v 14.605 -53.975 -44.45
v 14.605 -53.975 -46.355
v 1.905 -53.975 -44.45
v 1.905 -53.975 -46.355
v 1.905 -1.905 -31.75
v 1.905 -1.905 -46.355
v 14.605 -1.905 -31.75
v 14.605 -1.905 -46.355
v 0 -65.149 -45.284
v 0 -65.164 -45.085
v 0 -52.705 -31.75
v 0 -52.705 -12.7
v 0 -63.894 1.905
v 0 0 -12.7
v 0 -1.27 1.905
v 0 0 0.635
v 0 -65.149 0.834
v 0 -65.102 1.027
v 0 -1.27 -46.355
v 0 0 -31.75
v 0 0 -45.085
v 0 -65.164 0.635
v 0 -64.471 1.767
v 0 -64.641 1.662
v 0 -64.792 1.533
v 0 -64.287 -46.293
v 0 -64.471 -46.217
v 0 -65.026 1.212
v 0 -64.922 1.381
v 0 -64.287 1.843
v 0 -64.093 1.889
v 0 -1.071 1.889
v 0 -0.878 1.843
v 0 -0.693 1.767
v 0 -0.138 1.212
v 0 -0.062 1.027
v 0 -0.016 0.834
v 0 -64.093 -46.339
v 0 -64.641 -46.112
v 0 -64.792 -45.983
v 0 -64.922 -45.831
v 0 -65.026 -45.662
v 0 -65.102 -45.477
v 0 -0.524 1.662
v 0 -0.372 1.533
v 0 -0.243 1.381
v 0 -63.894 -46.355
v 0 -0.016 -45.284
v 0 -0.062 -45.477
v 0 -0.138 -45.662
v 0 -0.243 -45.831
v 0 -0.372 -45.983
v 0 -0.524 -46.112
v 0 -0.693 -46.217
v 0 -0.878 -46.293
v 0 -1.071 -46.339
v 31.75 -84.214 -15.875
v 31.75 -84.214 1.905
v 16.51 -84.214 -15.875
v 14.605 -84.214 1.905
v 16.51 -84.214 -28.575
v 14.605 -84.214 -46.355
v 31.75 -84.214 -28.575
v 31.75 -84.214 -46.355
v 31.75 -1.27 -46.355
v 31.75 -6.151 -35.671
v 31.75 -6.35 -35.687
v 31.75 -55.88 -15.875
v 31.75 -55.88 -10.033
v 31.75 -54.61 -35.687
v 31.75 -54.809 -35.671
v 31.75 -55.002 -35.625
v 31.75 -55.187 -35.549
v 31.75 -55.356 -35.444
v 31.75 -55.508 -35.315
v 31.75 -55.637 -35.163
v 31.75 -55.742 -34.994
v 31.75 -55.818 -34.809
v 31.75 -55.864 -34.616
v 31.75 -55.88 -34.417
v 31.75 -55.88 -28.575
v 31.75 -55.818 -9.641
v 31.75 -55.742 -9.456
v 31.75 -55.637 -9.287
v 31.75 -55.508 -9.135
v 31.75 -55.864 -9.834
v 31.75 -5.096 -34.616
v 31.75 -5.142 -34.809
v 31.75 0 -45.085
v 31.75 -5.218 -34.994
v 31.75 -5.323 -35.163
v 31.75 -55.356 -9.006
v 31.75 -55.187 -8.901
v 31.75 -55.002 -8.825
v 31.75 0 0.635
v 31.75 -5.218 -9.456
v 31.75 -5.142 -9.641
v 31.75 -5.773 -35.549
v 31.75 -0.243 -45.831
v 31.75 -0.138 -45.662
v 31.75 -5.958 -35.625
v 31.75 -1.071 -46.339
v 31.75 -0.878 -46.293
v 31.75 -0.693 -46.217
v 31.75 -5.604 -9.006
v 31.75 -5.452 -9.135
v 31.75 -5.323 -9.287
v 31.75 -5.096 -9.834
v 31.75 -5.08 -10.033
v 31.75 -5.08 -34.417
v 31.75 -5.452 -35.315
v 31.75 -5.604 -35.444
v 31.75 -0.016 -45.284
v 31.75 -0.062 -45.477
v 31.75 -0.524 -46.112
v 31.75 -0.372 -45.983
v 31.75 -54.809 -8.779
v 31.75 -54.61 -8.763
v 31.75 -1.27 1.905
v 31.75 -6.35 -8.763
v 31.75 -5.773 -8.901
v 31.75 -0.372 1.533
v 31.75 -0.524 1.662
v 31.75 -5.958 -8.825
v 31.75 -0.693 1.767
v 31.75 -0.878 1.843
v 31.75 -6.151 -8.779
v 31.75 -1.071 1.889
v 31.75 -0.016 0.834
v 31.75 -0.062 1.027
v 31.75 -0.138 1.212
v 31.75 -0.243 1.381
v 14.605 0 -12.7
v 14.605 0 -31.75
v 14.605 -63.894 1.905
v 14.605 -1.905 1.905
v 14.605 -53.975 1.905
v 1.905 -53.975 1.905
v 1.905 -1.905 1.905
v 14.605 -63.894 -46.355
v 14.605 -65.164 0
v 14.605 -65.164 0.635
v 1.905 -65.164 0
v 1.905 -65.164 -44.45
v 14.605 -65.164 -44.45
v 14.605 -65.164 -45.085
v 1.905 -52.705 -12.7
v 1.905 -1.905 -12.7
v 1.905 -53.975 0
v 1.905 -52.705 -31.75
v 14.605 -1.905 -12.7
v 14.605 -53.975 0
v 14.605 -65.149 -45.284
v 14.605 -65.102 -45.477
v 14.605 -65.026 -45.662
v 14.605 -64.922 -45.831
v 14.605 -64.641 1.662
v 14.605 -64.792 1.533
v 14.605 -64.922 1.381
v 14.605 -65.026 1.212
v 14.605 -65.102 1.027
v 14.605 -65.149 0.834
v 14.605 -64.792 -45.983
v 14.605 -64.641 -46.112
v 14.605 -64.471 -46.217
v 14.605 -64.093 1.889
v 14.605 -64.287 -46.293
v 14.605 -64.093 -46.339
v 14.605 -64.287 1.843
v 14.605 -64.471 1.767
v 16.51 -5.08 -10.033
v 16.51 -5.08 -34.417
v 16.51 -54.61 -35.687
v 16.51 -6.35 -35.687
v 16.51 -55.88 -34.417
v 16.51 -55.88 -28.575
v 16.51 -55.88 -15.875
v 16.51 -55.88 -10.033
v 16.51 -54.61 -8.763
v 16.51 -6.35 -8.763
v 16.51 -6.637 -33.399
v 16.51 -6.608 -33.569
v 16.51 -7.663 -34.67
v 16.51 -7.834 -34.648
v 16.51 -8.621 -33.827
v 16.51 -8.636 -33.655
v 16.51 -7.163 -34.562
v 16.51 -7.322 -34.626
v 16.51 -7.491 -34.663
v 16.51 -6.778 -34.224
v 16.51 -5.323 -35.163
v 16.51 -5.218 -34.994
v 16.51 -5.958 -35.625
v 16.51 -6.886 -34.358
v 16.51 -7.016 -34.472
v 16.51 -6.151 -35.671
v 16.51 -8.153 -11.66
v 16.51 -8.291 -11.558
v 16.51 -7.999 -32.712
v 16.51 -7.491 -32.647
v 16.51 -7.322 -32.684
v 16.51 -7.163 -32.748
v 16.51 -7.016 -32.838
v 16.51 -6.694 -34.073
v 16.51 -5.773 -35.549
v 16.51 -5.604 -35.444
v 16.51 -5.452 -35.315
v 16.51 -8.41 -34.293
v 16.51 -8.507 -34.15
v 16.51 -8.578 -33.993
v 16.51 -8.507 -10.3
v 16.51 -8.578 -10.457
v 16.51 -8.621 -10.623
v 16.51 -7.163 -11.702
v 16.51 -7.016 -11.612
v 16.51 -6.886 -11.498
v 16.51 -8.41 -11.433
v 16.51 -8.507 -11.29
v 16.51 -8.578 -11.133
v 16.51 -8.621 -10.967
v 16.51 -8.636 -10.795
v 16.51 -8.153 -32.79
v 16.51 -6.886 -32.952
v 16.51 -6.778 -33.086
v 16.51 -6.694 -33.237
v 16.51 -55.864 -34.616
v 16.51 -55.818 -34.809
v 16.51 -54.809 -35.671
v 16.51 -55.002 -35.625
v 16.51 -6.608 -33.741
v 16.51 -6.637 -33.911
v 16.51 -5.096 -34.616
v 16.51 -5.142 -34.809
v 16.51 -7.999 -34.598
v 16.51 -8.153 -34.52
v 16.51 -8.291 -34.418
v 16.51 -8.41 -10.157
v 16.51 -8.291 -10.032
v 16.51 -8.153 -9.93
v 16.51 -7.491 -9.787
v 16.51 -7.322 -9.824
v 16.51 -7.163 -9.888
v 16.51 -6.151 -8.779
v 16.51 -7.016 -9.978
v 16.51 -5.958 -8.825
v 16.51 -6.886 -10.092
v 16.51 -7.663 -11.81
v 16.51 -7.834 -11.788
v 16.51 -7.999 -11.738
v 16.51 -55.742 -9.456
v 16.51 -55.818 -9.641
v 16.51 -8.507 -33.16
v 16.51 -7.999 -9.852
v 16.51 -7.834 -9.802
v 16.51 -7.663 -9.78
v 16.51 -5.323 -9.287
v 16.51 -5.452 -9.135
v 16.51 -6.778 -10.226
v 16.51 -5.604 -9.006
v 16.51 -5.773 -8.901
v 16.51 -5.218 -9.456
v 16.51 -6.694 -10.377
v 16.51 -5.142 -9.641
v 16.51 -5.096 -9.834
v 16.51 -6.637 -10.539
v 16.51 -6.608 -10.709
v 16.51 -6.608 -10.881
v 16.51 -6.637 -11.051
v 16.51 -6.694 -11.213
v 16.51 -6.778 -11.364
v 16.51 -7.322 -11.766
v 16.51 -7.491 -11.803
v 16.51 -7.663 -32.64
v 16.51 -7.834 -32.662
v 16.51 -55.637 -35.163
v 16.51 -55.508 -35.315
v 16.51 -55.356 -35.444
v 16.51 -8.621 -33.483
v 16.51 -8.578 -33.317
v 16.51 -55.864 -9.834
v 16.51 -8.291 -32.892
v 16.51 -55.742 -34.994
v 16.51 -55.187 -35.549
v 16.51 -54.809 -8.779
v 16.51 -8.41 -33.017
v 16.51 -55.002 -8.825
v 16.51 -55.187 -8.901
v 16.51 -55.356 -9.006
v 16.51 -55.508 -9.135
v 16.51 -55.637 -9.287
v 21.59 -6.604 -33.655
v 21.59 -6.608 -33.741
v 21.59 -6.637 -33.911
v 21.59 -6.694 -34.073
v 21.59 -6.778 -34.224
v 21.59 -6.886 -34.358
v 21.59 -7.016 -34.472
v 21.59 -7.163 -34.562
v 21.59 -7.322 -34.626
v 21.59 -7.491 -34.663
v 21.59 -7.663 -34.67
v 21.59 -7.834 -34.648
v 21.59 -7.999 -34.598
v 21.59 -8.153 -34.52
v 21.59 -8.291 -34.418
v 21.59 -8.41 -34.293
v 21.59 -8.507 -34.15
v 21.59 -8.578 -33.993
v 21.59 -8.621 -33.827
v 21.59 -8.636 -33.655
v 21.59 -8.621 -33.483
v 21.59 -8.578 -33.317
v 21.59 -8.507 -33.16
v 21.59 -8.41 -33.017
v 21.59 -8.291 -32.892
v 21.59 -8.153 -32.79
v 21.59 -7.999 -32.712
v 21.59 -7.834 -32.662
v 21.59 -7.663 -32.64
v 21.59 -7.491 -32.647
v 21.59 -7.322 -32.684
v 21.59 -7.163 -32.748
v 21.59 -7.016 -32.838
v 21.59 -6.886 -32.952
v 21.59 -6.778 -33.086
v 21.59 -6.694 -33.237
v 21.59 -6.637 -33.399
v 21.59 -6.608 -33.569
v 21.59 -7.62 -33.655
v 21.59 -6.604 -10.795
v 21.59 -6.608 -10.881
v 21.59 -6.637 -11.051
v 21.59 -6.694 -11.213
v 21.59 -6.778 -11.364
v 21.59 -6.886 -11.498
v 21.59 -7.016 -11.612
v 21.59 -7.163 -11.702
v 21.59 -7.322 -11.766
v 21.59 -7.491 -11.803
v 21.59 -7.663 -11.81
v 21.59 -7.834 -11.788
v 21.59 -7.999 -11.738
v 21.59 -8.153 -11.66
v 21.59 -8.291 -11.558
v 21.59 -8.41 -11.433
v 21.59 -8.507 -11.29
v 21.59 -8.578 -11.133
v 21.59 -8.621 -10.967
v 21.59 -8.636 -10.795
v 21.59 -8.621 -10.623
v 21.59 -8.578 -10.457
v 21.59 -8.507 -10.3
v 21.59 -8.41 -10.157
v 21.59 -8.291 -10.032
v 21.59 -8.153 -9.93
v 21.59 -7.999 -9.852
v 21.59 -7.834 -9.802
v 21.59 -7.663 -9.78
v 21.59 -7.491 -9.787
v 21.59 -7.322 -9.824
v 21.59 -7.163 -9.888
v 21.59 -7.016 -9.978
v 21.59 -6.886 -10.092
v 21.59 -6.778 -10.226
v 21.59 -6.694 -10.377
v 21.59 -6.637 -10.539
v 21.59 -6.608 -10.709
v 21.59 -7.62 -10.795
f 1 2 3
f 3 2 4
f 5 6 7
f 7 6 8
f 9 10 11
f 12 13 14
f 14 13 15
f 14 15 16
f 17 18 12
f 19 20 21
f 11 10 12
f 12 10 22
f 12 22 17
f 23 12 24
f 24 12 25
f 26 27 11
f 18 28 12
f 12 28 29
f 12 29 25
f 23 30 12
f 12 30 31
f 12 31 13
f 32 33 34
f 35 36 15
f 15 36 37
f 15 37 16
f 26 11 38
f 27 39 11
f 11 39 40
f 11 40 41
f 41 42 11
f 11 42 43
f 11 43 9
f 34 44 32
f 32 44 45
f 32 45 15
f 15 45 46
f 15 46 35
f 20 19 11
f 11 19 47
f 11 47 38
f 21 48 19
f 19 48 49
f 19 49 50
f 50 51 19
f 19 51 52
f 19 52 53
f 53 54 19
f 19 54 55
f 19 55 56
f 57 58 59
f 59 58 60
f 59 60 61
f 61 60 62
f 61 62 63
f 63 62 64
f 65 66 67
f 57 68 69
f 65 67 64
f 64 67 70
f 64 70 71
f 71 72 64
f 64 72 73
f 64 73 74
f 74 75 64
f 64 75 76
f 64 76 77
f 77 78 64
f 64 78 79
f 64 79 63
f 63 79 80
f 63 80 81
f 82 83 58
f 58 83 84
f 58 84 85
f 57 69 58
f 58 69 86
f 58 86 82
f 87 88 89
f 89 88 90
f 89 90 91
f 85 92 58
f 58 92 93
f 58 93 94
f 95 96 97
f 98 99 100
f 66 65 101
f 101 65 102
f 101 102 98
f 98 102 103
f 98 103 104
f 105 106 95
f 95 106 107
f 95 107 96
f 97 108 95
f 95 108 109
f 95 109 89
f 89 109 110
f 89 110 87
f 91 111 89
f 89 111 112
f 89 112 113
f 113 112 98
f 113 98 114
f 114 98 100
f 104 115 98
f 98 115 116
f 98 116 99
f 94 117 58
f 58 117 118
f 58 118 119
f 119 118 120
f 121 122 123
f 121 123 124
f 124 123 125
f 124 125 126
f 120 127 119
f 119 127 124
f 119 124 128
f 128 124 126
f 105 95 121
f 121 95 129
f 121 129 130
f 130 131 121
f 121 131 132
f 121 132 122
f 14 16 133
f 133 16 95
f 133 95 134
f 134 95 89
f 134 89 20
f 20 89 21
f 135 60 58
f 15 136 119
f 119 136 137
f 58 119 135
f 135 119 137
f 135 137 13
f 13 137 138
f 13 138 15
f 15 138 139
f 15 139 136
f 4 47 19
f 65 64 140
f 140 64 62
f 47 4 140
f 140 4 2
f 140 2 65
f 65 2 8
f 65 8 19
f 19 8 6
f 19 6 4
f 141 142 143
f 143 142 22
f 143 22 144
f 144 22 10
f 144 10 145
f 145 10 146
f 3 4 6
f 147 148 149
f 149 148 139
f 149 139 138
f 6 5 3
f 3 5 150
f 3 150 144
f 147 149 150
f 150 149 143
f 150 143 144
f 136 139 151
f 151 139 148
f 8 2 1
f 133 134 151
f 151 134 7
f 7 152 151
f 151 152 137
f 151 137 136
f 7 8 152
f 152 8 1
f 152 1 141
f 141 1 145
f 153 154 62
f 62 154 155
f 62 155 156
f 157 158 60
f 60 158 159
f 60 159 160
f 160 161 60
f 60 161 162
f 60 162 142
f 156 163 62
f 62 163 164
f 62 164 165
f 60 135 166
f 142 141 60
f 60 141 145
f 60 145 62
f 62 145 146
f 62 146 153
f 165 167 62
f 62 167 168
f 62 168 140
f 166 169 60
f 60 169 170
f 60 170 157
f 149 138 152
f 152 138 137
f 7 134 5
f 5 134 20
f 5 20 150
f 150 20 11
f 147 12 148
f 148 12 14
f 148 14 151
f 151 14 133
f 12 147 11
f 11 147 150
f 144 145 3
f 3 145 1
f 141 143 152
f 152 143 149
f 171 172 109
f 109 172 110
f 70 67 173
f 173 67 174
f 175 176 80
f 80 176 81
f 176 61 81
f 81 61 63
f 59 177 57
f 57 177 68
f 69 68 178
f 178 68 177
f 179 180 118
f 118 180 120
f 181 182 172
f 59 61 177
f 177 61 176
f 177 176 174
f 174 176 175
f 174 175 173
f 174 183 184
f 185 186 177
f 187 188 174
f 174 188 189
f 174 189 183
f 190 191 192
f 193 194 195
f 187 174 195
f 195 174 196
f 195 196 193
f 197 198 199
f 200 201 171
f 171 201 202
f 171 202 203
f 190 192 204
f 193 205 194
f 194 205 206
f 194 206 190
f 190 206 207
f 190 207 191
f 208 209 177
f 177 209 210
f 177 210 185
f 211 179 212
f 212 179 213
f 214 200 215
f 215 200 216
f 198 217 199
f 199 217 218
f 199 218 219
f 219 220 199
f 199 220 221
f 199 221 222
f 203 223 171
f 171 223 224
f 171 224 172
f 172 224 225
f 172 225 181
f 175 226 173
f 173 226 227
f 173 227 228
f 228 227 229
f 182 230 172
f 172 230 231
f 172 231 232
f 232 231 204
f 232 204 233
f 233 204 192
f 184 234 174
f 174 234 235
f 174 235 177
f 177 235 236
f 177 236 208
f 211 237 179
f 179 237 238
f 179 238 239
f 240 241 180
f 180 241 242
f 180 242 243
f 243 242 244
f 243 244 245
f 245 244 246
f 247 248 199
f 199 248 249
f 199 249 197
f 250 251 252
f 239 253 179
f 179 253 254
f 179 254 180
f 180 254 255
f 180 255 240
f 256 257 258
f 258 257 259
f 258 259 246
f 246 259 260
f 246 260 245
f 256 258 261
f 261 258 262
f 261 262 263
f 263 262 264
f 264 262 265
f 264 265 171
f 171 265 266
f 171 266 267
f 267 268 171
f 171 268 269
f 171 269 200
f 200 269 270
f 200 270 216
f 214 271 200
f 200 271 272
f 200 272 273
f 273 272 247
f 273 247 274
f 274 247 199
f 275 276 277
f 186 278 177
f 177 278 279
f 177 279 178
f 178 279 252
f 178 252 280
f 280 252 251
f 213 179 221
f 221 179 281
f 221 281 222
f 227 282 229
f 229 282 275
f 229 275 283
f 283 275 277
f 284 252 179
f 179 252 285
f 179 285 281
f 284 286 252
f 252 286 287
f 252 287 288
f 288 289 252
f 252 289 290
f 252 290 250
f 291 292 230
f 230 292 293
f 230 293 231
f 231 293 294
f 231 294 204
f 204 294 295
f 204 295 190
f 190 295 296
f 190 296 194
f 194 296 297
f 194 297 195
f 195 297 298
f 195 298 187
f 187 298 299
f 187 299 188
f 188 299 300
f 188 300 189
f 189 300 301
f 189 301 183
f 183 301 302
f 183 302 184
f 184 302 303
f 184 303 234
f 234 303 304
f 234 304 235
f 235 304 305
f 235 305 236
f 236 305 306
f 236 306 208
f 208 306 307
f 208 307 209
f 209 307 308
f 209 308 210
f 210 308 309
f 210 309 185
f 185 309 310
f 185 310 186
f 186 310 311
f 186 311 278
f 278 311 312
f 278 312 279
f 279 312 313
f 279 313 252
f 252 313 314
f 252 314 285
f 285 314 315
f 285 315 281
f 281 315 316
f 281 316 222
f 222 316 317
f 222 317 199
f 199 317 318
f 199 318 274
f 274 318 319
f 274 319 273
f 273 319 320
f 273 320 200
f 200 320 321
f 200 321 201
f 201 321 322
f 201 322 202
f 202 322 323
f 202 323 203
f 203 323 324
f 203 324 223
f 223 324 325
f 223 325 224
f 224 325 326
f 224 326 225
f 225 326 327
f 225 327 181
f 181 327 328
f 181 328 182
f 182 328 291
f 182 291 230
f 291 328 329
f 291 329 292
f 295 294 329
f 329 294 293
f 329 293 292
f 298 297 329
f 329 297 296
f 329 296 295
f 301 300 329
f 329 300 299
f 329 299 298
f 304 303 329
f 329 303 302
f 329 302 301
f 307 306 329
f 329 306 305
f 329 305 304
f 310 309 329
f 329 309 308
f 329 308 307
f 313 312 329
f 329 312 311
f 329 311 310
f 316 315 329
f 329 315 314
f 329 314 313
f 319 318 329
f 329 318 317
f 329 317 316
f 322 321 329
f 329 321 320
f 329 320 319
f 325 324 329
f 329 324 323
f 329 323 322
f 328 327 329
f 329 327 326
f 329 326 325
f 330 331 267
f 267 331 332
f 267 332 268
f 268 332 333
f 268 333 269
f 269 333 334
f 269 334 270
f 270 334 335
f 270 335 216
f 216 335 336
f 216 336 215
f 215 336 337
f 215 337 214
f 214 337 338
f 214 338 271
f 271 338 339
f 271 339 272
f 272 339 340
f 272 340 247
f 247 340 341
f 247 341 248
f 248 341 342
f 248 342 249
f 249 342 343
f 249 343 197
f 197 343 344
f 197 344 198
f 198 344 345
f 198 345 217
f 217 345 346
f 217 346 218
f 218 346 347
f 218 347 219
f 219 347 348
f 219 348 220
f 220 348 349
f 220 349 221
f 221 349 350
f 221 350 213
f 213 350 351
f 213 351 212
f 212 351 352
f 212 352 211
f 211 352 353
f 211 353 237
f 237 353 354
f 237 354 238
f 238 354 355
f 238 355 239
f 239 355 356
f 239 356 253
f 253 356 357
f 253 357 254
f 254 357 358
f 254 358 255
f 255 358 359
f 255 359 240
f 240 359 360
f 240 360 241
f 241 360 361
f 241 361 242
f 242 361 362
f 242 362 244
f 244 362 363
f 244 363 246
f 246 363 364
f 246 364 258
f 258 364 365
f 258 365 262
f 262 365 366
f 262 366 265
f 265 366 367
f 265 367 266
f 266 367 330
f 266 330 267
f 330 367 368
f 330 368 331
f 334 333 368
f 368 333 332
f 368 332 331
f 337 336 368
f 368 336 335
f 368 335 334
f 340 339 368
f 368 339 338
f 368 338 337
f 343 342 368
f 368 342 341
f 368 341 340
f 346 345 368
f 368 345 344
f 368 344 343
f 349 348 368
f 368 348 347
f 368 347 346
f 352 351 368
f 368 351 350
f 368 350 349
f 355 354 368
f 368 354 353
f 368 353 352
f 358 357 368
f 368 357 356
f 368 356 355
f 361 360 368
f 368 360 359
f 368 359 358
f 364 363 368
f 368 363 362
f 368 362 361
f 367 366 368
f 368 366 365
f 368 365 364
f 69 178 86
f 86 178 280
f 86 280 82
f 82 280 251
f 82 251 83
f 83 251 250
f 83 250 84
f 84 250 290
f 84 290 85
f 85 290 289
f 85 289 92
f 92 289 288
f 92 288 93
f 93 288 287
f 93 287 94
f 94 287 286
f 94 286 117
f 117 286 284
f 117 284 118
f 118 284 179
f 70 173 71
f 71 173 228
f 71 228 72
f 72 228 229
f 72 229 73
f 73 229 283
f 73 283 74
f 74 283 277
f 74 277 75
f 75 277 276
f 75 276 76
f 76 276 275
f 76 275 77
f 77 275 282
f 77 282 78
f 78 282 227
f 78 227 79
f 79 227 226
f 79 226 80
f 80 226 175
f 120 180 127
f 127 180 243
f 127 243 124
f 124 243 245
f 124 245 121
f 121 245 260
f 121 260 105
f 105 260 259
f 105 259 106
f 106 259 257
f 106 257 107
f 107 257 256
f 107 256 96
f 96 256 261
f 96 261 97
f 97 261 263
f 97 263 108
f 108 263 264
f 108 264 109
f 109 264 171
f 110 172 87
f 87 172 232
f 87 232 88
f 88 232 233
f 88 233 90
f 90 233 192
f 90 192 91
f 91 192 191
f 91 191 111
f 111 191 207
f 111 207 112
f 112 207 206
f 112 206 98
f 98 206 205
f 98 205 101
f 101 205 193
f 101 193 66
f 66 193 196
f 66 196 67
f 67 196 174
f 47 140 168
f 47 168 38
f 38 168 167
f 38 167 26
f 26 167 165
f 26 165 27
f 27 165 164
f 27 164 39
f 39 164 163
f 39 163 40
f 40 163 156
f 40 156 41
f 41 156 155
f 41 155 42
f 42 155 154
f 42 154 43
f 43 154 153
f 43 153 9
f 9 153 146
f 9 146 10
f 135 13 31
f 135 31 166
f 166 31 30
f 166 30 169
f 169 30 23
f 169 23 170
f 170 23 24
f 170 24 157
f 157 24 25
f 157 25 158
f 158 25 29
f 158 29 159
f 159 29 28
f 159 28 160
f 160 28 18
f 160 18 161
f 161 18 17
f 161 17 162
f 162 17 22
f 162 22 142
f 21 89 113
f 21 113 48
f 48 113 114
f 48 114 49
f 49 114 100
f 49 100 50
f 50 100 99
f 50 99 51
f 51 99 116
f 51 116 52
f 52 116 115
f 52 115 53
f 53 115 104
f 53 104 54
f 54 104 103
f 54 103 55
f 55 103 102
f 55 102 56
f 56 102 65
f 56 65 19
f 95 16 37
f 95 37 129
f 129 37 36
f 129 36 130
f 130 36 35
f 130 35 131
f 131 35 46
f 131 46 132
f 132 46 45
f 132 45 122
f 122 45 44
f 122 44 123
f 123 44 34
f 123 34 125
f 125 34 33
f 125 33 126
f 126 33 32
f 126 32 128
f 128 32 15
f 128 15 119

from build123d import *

# Parameters (mm, degrees)
SKETCH1_W                = 31.75
SKETCH1_H                = 84.214152012
BOSS_EXTRUDE1_DEPTH      = 1.905
BOSS_EXTRUDE1_DEPTH_BACK = 46.355
SKETCH3_W                = 12.7
SKETCH3_H                = 52.07
SKETCH3_W_2              = 14.605
SKETCH3_H_2              = 19.05
CUT_EXTRUDE1_DEPTH       = 49.26
CUT_EXTRUDE2_DEPTH       = 65.405
CUT_EXTRUDE3_DEPTH       = 14.605
CUT_EXTRUDE4_REACH       = 67.164
CUT_EXTRUDE5_DEPTH       = 15.24
SKETCH8_R                = 1.016
BOSS_EXTRUDE2_DEPTH      = 5.08
FILLET1_R                = 1.27
FILLET2_R                = 1.27


with BuildPart() as part:
    # Sketch1 → Boss-Extrude1 (new body, two sides)
    with BuildSketch(Plane.XY) as boss_extrude1_sk:
        with Locations((15.875, -42.107076006)):
            Rectangle(SKETCH1_W, SKETCH1_H)
    extrude(amount=BOSS_EXTRUDE1_DEPTH)
    extrude(boss_extrude1_sk.sketch, amount=-BOSS_EXTRUDE1_DEPTH_BACK)

    # Sketch3 → Cut-Extrude1 (cut, through all)
    with BuildSketch(Plane.XY.offset(1.905)):
        with Locations((8.255, -27.94)):
            Rectangle(SKETCH3_W, SKETCH3_H)
        with Locations((7.3025, -74.689152012)):
            Rectangle(SKETCH3_W_2, SKETCH3_H_2)
    extrude(amount=-CUT_EXTRUDE1_DEPTH, mode=Mode.SUBTRACT)

    # Sketch4 → Cut-Extrude2 (cut)
    with BuildSketch(Plane(origin=(0, 0, 0), x_dir=(1, 0, 0), z_dir=(0, 1, 0))):
        Polygon((1.905, 22.225), (1.905, 31.75), (14.405235248, 31.75), (14.405235248, 12.7), (1.905, 12.7), align=None)
    extrude(amount=-CUT_EXTRUDE2_DEPTH, mode=Mode.SUBTRACT)

    # Sketch5 → Cut-Extrude3 (cut)
    with BuildSketch(Plane.ZY):
        Polygon((-22.225, 0), (-12.7, 0), (-12.7, -52.705), (-31.75, -52.705), (-31.75, 0), align=None)
    extrude(amount=-CUT_EXTRUDE3_DEPTH, mode=Mode.SUBTRACT)

    # Sketch6 → Cut-Extrude4 (cut, up to next)
    with BuildSketch(Plane.XZ.offset(65.164152012), mode=Mode.PRIVATE) as cut_extrude4_sk1:
        Polygon((1.905, -22.225), (1.905, 0), (14.605, 0), (14.605, -44.45), (1.905, -44.45), align=None)
    cut_extrude4_tool1 = extrude(cut_extrude4_sk1.sketch, amount=-CUT_EXTRUDE4_REACH, mode=Mode.PRIVATE) & part.part
    add(cut_extrude4_tool1.solids().sort_by_distance((8.255, -65.164152, -22.225))[0], mode=Mode.SUBTRACT)

    # Sketch7 → Cut-Extrude5 (cut)
    with BuildSketch(Plane(origin=(31.75, 0, 0), x_dir=(0, 0, -1), z_dir=(1, 0, 0))):
        Polygon((22.225, -5.08), (35.687, -5.08), (35.687, -55.88), (28.575, -55.88), (28.575, -84.214152012), (15.875, -84.214152012), (15.875, -55.88), (8.763, -55.88), (8.763, -5.08), align=None)
    extrude(amount=-CUT_EXTRUDE5_DEPTH, mode=Mode.SUBTRACT)

    # Sketch8 → Boss-Extrude2 (add)
    with BuildSketch(Plane(origin=(16.51, 0, 0), x_dir=(0, 0, -1), z_dir=(1, 0, 0))):
        with Locations((33.655, -7.62)):
            Circle(SKETCH8_R)
        with Locations((10.795, -7.62)):
            Circle(SKETCH8_R)
    extrude(amount=BOSS_EXTRUDE2_DEPTH)

    # Fillet1
    fillet1_edges = [part.edges().sort_by_distance(p)[0] for p in [
        (24.13, -5.08, -8.763),
        (24.13, -5.08, -35.687),
        (24.13, -55.88, -35.687),
        (24.13, -55.88, -8.763),
    ]]
    fillet(fillet1_edges, radius=FILLET1_R)

    # Fillet2
    fillet2_edges = [part.edges().sort_by_distance(p)[0] for p in [
        (15.875, 0, -46.355),
        (15.875, 0, 1.905),
        (7.3025, -65.164152012, -46.355),
        (7.3025, -65.164152012, 1.905),
    ]]
    fillet(fillet2_edges, radius=FILLET2_R)


solid = part.part
